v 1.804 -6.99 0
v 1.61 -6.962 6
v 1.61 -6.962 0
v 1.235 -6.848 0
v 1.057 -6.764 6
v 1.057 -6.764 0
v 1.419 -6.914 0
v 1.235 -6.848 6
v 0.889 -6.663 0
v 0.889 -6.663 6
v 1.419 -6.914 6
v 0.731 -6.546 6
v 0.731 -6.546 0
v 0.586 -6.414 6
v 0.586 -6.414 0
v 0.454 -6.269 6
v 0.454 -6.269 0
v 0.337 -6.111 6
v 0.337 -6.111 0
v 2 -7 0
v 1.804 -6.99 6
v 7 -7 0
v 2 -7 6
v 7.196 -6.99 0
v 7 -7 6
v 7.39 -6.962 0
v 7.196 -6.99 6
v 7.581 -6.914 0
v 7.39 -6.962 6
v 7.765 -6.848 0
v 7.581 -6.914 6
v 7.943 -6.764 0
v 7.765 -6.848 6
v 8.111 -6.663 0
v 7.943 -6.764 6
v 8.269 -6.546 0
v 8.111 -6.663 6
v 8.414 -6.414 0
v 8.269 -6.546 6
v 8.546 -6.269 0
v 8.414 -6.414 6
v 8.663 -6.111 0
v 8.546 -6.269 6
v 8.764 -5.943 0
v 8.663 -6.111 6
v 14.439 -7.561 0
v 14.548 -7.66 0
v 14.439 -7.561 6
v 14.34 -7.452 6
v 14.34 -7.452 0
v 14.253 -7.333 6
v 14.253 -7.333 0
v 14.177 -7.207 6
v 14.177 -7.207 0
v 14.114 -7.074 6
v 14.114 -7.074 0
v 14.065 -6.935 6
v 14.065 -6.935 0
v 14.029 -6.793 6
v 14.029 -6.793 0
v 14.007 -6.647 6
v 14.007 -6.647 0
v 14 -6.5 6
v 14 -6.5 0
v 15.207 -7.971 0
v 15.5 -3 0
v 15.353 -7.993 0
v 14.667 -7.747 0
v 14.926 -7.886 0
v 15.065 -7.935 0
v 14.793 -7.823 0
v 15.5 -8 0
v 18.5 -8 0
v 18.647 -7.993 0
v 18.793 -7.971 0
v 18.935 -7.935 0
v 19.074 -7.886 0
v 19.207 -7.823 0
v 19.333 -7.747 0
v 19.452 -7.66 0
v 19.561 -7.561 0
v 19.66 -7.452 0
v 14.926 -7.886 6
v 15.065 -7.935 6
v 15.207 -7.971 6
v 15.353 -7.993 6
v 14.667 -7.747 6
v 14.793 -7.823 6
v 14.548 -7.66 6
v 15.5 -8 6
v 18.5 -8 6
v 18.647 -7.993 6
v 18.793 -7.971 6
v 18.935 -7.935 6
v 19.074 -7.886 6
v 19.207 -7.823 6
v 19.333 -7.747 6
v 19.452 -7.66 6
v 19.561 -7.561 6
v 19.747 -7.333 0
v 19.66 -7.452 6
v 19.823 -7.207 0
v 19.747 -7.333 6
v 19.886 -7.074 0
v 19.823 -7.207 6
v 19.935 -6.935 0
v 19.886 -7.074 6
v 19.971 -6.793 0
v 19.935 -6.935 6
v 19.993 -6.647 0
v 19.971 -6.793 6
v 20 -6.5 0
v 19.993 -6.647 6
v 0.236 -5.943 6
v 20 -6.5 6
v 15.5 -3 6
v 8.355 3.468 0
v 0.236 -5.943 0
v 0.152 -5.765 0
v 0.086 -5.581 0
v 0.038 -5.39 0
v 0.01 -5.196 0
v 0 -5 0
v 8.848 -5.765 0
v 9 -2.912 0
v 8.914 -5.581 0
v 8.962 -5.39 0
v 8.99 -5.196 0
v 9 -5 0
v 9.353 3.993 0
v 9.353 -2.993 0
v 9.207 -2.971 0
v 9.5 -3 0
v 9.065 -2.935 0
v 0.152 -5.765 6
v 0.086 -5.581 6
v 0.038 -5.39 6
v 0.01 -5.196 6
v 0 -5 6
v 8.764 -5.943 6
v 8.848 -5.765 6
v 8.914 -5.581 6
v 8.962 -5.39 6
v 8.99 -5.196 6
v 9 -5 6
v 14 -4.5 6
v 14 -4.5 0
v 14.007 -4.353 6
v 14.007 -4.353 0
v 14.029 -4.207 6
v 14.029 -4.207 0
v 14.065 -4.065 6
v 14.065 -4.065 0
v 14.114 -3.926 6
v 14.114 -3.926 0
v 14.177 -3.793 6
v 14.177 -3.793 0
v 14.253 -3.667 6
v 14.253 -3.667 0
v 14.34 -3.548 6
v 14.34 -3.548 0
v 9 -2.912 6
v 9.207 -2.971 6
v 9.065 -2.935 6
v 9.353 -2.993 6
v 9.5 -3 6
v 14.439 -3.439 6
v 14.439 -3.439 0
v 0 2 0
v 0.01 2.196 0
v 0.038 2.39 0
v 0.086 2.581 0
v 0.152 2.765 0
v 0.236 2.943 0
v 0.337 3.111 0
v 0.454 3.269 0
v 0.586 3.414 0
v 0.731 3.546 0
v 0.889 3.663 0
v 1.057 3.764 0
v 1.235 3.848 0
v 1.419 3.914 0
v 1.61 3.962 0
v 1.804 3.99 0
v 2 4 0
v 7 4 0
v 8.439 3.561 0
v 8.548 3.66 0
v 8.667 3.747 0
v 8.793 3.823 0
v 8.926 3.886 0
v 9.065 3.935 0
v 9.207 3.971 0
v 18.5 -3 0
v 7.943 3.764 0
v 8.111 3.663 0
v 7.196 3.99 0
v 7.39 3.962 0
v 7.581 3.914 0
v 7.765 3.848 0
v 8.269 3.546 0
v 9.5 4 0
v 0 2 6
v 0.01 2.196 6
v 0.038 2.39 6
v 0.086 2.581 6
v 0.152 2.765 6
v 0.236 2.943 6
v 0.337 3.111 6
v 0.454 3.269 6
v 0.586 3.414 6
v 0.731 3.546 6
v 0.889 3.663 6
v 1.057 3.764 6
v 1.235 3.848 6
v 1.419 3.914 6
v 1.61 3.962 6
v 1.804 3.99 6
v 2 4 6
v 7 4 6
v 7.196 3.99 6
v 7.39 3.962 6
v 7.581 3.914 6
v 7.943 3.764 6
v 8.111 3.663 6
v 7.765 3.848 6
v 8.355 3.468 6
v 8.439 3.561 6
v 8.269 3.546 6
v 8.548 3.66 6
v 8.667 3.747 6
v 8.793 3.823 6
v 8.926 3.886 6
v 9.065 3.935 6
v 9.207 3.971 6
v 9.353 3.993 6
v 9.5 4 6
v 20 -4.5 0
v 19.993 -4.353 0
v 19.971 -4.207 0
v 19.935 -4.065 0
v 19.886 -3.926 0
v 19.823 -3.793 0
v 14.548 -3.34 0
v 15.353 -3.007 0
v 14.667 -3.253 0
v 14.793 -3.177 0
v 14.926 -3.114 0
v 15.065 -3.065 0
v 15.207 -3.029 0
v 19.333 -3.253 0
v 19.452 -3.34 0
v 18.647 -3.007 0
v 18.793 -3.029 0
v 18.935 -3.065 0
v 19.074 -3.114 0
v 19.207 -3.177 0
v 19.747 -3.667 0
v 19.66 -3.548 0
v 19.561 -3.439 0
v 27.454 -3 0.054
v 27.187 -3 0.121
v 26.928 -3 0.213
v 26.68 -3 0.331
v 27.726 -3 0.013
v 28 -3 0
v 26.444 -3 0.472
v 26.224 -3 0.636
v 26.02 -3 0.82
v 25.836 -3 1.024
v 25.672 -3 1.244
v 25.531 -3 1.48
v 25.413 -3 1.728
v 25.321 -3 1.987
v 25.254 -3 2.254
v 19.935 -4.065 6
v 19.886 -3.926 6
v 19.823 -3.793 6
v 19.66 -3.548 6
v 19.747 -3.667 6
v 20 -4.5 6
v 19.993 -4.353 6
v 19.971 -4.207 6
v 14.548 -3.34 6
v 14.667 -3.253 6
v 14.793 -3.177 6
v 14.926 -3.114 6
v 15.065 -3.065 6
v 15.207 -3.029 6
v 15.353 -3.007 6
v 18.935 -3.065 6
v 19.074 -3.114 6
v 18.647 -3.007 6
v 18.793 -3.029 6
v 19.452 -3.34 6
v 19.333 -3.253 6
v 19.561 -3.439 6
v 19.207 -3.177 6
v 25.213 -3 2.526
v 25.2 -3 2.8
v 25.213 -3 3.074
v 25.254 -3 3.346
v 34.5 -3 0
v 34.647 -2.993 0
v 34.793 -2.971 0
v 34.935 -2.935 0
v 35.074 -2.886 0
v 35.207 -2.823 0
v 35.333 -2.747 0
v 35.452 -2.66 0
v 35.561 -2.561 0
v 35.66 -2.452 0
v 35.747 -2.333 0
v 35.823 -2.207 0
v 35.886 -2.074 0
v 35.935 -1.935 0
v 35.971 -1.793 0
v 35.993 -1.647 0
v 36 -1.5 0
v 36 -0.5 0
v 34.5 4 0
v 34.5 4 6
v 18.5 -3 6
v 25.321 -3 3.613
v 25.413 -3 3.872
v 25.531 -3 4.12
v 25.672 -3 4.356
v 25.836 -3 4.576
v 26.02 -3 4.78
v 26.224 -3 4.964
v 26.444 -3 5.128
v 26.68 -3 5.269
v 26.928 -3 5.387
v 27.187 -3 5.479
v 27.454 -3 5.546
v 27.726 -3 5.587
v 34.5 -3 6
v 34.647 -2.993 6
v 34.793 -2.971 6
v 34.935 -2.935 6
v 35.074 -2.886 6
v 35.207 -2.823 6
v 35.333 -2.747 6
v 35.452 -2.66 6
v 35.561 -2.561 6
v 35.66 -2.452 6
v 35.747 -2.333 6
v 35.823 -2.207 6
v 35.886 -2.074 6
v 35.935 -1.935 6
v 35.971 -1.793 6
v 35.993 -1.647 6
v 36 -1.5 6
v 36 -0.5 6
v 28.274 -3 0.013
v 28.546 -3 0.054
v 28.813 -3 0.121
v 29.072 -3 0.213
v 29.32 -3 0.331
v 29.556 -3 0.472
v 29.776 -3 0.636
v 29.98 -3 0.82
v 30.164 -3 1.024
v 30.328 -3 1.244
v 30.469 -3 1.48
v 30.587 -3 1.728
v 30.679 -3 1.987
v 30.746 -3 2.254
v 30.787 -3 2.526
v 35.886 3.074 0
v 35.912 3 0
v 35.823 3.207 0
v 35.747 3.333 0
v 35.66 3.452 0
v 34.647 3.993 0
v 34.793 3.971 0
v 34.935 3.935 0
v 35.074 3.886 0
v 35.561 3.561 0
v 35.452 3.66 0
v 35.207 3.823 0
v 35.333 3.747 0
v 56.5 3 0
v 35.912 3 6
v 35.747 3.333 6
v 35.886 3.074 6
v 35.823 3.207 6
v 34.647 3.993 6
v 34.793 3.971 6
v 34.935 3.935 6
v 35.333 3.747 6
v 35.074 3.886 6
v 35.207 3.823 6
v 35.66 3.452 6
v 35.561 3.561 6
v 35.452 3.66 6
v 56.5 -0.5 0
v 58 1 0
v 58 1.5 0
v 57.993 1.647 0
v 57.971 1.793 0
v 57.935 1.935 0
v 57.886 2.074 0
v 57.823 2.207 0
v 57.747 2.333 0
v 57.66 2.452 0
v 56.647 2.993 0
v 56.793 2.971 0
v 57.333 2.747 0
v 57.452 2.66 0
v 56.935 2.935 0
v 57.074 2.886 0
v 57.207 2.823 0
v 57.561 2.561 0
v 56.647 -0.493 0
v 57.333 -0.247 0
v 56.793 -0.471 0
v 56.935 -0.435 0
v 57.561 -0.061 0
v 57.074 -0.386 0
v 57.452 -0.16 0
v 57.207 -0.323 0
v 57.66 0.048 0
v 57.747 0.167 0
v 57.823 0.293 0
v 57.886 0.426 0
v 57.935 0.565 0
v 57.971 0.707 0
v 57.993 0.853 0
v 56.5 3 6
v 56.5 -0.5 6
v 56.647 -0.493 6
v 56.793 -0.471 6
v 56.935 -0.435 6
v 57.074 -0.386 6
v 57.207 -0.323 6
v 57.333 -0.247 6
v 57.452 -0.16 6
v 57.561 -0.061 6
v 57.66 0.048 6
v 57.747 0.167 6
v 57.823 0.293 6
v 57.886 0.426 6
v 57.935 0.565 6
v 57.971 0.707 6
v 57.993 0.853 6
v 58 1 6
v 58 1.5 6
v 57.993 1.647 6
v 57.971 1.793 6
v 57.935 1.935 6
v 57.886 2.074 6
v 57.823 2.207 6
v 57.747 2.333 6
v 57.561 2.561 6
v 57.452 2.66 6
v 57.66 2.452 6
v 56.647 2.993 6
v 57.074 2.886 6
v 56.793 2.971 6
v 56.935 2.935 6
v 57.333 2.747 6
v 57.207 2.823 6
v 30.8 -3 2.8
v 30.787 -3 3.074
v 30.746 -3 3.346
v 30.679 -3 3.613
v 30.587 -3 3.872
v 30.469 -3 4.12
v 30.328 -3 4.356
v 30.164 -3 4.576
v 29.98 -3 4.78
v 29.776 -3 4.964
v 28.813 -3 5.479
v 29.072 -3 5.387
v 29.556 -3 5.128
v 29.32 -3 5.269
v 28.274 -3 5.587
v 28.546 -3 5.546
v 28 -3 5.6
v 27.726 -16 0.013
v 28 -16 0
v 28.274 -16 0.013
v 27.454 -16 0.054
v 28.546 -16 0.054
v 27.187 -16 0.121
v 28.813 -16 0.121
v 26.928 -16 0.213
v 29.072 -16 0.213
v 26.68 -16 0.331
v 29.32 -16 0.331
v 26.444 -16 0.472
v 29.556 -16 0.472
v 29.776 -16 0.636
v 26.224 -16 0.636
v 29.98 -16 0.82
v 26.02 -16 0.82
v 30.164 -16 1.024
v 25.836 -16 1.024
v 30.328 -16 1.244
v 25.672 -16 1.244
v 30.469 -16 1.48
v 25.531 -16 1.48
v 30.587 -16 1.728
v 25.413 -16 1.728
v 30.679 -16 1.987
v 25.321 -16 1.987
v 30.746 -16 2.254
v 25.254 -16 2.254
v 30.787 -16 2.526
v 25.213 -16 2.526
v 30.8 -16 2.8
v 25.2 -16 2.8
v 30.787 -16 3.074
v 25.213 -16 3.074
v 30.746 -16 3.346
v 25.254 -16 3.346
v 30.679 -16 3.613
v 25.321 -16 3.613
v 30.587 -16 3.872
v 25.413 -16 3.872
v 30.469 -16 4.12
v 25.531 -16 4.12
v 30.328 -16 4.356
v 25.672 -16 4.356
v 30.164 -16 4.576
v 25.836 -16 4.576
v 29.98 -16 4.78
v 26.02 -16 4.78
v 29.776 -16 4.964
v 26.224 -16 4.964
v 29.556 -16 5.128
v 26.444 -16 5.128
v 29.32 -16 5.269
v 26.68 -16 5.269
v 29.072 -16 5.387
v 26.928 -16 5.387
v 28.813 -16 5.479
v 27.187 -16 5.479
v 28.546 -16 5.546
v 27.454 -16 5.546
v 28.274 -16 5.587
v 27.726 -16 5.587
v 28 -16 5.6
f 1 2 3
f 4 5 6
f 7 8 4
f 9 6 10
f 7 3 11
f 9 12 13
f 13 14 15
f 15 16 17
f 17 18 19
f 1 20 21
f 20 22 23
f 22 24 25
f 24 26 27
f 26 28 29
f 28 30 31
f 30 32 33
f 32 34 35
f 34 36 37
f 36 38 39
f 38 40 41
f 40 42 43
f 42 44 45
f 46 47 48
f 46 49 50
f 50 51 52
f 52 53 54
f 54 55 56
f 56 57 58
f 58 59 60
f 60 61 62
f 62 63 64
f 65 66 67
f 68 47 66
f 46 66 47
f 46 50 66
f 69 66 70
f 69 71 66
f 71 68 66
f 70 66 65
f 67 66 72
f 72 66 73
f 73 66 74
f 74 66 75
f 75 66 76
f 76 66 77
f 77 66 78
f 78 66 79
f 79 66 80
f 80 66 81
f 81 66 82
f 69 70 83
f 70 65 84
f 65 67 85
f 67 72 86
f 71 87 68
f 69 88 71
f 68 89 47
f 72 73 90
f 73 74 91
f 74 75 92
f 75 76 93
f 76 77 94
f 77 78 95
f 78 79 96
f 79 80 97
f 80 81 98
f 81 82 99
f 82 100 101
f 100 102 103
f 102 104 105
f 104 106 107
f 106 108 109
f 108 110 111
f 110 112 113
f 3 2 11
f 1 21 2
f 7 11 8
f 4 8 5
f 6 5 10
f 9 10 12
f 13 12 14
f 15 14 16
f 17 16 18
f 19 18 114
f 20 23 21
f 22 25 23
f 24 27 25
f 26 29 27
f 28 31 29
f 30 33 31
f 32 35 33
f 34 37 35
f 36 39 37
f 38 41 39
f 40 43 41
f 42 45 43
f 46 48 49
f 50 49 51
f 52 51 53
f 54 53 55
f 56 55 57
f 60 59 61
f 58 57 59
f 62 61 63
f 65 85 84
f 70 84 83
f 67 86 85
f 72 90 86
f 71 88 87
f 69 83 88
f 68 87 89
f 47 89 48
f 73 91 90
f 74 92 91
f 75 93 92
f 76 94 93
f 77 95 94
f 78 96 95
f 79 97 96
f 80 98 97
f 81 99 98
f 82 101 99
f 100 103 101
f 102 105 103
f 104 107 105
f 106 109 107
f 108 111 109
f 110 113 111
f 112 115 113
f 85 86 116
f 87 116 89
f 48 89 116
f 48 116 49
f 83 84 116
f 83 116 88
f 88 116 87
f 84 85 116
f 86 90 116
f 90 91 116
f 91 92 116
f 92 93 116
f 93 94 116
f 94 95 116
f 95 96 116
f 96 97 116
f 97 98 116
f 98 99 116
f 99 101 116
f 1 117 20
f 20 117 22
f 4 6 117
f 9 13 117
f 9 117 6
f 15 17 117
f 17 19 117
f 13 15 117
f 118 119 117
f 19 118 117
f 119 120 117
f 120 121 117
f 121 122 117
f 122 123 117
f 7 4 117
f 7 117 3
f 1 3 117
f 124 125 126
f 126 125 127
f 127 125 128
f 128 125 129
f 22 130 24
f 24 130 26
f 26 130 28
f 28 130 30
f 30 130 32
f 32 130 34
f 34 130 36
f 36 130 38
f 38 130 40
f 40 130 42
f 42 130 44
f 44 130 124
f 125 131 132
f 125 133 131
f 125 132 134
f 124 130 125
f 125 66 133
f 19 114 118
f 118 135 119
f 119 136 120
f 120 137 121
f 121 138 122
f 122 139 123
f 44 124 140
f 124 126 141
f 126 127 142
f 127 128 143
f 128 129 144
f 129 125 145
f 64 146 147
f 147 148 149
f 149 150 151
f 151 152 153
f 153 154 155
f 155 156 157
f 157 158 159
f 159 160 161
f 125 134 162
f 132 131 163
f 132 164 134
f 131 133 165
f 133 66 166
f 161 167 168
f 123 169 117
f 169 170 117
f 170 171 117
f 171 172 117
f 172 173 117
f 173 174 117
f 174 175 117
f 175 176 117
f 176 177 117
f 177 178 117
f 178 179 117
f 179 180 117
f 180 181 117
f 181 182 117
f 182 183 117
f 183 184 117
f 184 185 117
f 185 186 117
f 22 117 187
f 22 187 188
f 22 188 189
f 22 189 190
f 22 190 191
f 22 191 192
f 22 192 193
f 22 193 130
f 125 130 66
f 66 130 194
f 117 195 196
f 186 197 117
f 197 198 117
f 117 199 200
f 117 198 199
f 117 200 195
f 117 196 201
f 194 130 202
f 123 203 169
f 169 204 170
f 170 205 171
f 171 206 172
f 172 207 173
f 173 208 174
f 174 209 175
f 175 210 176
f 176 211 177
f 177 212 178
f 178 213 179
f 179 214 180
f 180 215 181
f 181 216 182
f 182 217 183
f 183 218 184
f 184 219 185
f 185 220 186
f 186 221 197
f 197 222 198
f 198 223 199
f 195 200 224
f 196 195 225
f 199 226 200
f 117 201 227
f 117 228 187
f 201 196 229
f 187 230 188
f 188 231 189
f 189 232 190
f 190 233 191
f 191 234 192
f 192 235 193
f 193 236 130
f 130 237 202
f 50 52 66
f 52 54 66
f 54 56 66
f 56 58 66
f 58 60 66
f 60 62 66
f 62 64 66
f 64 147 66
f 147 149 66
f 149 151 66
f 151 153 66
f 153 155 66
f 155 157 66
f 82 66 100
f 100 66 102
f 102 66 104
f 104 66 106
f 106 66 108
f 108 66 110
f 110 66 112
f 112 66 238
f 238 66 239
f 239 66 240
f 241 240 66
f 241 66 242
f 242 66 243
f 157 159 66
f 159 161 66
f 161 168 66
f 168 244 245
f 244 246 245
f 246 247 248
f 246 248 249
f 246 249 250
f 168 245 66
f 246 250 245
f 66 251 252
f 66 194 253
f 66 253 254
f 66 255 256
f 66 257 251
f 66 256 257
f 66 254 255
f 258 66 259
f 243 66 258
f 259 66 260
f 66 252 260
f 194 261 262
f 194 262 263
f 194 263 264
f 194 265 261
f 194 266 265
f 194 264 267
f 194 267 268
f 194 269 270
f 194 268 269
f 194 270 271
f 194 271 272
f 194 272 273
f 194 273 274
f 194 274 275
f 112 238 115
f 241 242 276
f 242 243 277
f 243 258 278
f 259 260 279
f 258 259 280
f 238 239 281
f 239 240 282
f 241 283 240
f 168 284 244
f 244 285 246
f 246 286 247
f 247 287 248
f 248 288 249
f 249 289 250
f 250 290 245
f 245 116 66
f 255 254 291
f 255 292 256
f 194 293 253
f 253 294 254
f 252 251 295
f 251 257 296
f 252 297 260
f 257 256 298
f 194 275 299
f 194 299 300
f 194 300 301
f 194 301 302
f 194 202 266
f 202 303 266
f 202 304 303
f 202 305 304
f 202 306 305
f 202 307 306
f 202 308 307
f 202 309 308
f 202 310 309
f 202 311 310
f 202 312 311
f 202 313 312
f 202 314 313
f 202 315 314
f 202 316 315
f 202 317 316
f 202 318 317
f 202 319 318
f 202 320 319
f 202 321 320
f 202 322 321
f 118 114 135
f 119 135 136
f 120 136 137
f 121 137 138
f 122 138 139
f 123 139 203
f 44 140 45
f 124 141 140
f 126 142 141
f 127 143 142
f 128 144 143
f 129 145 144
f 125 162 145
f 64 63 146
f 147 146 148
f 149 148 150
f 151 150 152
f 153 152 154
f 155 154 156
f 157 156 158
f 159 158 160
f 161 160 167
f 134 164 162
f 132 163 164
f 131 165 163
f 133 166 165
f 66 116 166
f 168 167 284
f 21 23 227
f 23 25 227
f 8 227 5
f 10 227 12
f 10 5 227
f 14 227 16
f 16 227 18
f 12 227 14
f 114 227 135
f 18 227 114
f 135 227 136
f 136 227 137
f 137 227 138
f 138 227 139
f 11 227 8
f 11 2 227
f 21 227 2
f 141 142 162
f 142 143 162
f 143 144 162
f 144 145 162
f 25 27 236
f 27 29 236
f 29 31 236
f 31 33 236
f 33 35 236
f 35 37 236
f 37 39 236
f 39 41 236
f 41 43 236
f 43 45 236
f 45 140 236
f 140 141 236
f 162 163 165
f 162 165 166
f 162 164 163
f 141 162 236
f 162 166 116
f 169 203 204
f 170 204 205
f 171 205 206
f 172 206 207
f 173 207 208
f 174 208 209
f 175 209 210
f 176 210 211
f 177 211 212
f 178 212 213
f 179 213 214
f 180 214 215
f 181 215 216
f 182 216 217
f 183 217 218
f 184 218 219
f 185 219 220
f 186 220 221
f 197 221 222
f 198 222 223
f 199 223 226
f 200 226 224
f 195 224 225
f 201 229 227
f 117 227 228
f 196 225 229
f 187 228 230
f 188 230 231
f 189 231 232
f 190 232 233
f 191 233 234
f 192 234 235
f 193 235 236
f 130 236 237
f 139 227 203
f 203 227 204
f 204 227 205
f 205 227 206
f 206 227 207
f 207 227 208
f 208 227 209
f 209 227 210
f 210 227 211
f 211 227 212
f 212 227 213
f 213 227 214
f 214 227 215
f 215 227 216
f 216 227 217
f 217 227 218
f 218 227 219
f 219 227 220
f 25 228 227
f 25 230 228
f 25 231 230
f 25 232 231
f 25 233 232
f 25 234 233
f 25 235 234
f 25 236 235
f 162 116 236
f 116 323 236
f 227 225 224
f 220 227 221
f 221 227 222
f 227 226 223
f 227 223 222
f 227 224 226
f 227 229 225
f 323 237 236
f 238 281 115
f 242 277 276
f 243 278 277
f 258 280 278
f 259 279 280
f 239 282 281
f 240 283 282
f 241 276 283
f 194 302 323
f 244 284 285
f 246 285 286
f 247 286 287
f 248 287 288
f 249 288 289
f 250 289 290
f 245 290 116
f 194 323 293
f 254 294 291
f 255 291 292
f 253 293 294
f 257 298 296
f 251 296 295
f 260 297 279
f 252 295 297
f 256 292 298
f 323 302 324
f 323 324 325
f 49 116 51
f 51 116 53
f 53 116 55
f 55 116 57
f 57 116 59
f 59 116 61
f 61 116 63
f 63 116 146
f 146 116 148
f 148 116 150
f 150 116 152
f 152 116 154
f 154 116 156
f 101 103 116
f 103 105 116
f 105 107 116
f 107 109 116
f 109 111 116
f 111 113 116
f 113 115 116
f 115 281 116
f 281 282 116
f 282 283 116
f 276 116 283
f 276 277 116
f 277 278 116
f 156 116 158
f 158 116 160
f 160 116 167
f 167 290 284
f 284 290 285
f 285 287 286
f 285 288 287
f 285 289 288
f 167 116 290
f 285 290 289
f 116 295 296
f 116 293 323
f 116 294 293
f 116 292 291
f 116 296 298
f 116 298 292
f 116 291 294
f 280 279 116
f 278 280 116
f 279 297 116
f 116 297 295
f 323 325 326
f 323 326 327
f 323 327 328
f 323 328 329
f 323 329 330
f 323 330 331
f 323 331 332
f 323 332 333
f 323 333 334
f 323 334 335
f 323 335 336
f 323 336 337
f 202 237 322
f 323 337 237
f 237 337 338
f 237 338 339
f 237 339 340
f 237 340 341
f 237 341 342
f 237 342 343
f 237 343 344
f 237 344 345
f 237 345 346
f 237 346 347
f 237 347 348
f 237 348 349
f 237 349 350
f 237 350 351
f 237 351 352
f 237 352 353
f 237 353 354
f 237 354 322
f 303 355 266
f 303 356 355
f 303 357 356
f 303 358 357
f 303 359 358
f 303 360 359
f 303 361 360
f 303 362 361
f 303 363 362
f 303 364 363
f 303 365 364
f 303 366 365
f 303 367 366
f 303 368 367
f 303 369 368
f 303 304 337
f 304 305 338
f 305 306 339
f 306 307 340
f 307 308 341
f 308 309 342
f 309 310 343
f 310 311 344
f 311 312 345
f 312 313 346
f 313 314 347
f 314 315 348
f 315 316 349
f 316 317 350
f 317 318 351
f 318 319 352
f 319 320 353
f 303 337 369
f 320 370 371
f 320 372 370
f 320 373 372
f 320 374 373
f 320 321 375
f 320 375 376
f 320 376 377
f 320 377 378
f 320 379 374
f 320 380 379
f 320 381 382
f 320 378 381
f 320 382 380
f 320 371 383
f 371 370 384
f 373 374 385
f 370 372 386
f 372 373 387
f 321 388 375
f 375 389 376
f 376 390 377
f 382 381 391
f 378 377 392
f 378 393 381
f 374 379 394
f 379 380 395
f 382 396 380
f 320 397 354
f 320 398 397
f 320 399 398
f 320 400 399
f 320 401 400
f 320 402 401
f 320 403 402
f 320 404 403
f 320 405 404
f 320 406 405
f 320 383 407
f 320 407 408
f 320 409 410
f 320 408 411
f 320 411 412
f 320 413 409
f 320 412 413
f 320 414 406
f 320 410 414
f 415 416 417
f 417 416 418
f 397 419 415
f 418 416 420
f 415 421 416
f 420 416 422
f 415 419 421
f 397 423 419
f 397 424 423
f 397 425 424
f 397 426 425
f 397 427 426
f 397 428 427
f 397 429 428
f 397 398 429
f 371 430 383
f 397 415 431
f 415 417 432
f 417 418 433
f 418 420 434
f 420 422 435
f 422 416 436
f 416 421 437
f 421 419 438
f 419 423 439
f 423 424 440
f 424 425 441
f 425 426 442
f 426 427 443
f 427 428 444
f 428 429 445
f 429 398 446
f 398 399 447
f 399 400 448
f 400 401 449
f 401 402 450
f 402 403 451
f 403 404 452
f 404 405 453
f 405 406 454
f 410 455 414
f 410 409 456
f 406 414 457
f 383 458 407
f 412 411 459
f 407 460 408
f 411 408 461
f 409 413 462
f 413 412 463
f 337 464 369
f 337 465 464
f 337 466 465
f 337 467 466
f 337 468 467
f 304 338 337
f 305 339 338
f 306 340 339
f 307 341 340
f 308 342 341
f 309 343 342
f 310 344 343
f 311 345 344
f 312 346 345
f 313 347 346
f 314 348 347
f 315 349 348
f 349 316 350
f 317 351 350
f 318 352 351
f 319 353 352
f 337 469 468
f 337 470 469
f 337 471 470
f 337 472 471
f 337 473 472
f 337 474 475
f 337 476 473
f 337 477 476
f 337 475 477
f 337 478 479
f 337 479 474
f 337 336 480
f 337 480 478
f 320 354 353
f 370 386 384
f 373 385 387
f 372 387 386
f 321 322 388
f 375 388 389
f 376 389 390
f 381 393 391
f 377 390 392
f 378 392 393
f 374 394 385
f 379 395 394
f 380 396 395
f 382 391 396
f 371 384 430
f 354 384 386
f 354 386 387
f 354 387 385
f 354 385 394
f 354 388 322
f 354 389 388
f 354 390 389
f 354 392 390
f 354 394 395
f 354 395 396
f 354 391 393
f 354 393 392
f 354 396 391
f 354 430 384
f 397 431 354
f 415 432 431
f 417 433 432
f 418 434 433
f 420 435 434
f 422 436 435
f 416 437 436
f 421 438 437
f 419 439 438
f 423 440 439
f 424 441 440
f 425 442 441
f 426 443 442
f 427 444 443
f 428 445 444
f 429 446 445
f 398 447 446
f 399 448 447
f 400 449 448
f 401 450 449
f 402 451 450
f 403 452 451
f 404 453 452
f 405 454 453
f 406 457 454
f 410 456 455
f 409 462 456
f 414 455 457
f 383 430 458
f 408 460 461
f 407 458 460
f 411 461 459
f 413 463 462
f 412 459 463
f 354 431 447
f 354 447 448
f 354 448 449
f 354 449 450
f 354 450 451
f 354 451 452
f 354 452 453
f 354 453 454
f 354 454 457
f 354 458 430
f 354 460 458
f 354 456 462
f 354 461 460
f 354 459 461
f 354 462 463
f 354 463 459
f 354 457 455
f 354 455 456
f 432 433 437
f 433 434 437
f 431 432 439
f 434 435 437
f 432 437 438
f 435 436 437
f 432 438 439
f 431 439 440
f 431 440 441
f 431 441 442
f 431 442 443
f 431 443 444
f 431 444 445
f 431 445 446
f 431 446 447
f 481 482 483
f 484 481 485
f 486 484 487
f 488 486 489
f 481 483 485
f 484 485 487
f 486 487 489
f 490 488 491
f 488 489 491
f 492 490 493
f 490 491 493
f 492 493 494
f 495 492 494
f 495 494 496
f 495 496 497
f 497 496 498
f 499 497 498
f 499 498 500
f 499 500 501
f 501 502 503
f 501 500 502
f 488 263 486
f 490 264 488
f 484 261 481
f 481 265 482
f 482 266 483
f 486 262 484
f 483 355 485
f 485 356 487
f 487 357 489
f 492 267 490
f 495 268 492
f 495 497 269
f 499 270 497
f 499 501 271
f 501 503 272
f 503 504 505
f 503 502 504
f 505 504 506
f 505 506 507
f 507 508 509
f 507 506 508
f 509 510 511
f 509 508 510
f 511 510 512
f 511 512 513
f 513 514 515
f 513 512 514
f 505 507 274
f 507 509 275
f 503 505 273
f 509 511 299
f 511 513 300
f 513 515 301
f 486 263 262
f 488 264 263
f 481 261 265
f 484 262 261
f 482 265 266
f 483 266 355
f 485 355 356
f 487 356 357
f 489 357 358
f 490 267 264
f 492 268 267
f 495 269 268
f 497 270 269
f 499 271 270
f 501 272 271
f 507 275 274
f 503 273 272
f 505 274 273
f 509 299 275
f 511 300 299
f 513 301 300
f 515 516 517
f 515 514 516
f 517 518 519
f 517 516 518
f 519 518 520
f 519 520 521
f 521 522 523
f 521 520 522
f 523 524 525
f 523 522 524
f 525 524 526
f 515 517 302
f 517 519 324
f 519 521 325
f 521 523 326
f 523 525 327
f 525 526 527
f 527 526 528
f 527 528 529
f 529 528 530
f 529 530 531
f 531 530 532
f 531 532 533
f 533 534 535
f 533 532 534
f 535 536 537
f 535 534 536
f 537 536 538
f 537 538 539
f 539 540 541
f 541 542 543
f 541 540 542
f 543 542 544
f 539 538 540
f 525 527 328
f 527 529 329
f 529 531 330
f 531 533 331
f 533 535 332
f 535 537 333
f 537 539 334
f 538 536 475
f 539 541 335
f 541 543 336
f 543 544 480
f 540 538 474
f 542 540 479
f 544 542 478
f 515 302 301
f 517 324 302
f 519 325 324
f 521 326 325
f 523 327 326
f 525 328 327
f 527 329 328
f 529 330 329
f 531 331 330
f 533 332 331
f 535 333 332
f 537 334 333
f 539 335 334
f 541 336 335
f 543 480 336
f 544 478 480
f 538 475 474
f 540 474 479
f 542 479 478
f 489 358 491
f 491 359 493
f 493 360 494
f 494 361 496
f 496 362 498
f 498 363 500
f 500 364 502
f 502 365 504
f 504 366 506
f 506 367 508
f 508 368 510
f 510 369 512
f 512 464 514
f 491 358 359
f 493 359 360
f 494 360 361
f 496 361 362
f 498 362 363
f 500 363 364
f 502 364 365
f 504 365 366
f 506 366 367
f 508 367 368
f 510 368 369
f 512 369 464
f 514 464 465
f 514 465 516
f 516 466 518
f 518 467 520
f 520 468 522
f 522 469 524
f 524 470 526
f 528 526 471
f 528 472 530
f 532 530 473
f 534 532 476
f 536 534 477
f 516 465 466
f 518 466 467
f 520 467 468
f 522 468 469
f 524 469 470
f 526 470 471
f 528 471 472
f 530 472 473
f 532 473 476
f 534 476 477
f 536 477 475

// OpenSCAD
// file: ../lib/soldier.scad
// toy-soldiers shared library
// All figures and weapons include this file. The grip interface constants
// are the contract: any weapon whose bar uses GRIP_BAR_D fits any figure
// whose hand uses GRIP_HOLE_D / GRIP_SLOT_W.

$fn = $preview ? 32 : 64;

// ---------------------------------------------------------------
// Grip interface — shared contract between figures and weapons
// ---------------------------------------------------------------
GRIP_BAR_D  = 5.6;  // weapon grip-bar diameter
GRIP_HOLE_D = 6.0;  // hand hole diameter (0.4mm clearance for FDM)
GRIP_SLOT_W = 5.3;  // C-opening width; bar snaps through the front
HAND_OD     = 11;   // hand outer diameter
HAND_H      = 9;    // hand height
GRIP_BAR_L  = 14;   // standard bar length (sticks out below the hand)

// ---------------------------------------------------------------
// Figure proportions (~70mm tall incl. base, +Y is forward)
// ---------------------------------------------------------------
BASE_D  = 26;  BASE_H  = 4;
LEG_H   = 22;  LEG_D   = 9;  HIP_X = 5.5;   // leg centre offset from middle
TORSO_H = 24;  TORSO_W = 20; TORSO_WAIST = 16; TORSO_D = 12;
HEAD_D  = 14;  NECK_H  = 3;

HIP_Z      = BASE_H + LEG_H;                 // 26
TORSO_Z0   = HIP_Z - 1;                      // torso overlaps hips 1mm
TORSO_Z1   = TORSO_Z0 + TORSO_H;             // 49
SHOULDER_Z = TORSO_Z1 - 3;                   // 46
SHOULDER_X = TORSO_W/2 + 1;                  // arm root
HEAD_CZ    = TORSO_Z1 + NECK_H + HEAD_D/2;   // head centre

// ---------------------------------------------------------------
// Primitives
// ---------------------------------------------------------------
module rounded_box(size, r=2)
    hull()
        for (x=[-1,1], y=[-1,1], z=[-1,1])
            translate([x*(size[0]/2-r), y*(size[1]/2-r), z*(size[2]/2-r)])
                sphere(r=r);

module limb(a, b, ra=4.5, rb=4)   // thick tapered limb between two points
    hull() { translate(a) sphere(r=ra); translate(b) sphere(r=rb); }

// ---------------------------------------------------------------
// Body parts
// ---------------------------------------------------------------
module base()
    cylinder(d1=BASE_D, d2=BASE_D-2, h=BASE_H);

module leg(x)
    union() {
        translate([x, 0, BASE_H-1]) cylinder(d=LEG_D, h=LEG_H+2);
        // boot: rests on the base, so no overhang
        translate([x, 3.5, BASE_H + 2.5]) rounded_box([LEG_D+1, 13, 5], 2);
    }

module torso()
    hull() {
        translate([0, 0, TORSO_Z0 + 2])
            rounded_box([TORSO_WAIST, TORSO_D-1, 4], 2);
        translate([0, 0, TORSO_Z1 - 2.5])
            rounded_box([TORSO_W, TORSO_D, 5], 2);
    }

module head() {
    // stout neck; the sphere's underside meets it at <45deg so no supports
    translate([0, 0, TORSO_Z1 - 1]) cylinder(d=9.5, h=NECK_H + 3);
    translate([0, 0, HEAD_CZ]) sphere(d=HEAD_D);
}

module helmet()
    translate([0, 0, HEAD_CZ + 1]) {
        difference() {
            sphere(d=HEAD_D + 3.5);
            translate([0, 0, -HEAD_D/2]) cube(HEAD_D*2, center=true);
        }
        // brim with 45-degree underside chamfer
        cylinder(d1=HEAD_D + 1, d2=HEAD_D + 5, h=2);
    }

module cap()   // officer's peaked cap
    translate([0, 0, HEAD_CZ + HEAD_D/2 - 3.5]) {
        cylinder(d1=HEAD_D - 0.5, d2=HEAD_D + 1.5, h=4);
        translate([0, 0, 4]) cylinder(d=HEAD_D + 2, h=1.5);
        // peak: wedge jutting over the face, 45deg chamfered underside
        hull() {
            translate([0, HEAD_D/2 - 2, 1.25]) cube([11, 2, 2.5], center=true);
            translate([0, HEAD_D/2 + 3, 2.25]) cube([9, 1, 1.2], center=true);
        }
    }

module backpack()
    translate([0, -TORSO_D/2, SHOULDER_Z - 6])
        hull() {   // sloped underside back to the torso — printable
            translate([0, -1, -4]) rounded_box([13, 2, 4], 1);
            translate([0, -4, 2]) rounded_box([14, 6, 10], 2);
        }

// C-shaped grip hand, hole axis vertical, opening faces +Y (forward)
module grip_hand()
    difference() {
        cylinder(d=HAND_OD, h=HAND_H, center=true);
        cylinder(d=GRIP_HOLE_D, h=HAND_H + 2, center=true);
        translate([0, HAND_OD/4 + 0.5, 0])
            cube([GRIP_SLOT_W, HAND_OD/2 + 2, HAND_H + 2], center=true);
    }

module fist()
    sphere(d=9);

// ---------------------------------------------------------------
// Arms — s = +1 right, -1 left. Poses avoid >45-degree overhangs.
// ---------------------------------------------------------------
module arm(s, pose) {
    sh = [s*SHOULDER_X, 0, SHOULDER_Z];

    if (pose == "grip_side") {          // hand at the hip
        w = [s*(SHOULDER_X + 3), 4, SHOULDER_Z - 14];
        limb(sh, w);
        translate(w + [0, 1, -4]) grip_hand();
    }
    else if (pose == "grip_forward") {  // hand forward at waist height
        w = [s*(SHOULDER_X + 1), 9, SHOULDER_Z - 12];
        limb(sh, w);
        translate(w + [0, 2, -4]) grip_hand();
    }
    else if (pose == "grip_up") {       // bent arm, hand at shoulder height
        e = [s*(SHOULDER_X + 2), 3, SHOULDER_Z - 11];
        w = [s*(SHOULDER_X + 2), 9, SHOULDER_Z - 2];
        limb(sh, e);
        limb(e, w, 4, 4);
        translate(w + [0, 2, 2]) grip_hand();
    }
    else if (pose == "fist_side") {
        w = [s*(SHOULDER_X + 3), 3, SHOULDER_Z - 15];
        limb(sh, w);
        translate(w + [0, 0, -3]) fist();
    }
    else if (pose == "fist_forward") {
        w = [s*(SHOULDER_X + 1), 8, SHOULDER_Z - 13];
        limb(sh, w);
        translate(w + [0, 2, -2]) fist();
    }
    else if (pose == "point_up") {      // raised arm, ~40 degrees off vertical
        w = [s*(SHOULDER_X + 5), 6, SHOULDER_Z + 9];
        limb(sh, w);
        translate(w) sphere(d=8);
        translate(w) rotate([-40, s*15, 0]) cylinder(d=5, h=7);
    }
}

// ---------------------------------------------------------------
// Assembled soldier
// ---------------------------------------------------------------
module soldier(right_arm="grip_side", left_arm="fist_side",
               headgear="helmet", pack=false) {
    base();
    leg(-HIP_X); leg(HIP_X);
    torso();
    head();
    if (headgear == "helmet") helmet();
    if (headgear == "cap") cap();
    if (pack) backpack();
    arm( 1, right_arm);
    arm(-1, left_arm);
}

// ---------------------------------------------------------------
// Weapon helper — weapons are modelled in PRINT orientation:
// lying flat on the bed (z=0), length along X, "up in use" is +Y.
// The bar rests tangent on the bed so nothing floats.
// ---------------------------------------------------------------
module grip_bar(x, y_top, len=GRIP_BAR_L)
    translate([x, y_top, GRIP_BAR_D/2])
        rotate([90, 0, 0]) cylinder(d=GRIP_BAR_D, h=len);
// main file
// Toy rifle — blocky Lego-style silhouette, printed lying flat.
// X = barrel direction, +Y = up in use, grip bar hangs -Y.
include <../lib/soldier.scad>

THK = 6;   // body thickness

// rounded rectangle in the XY profile plane
module rrect(x0, y0, x1, y1, r=1.5)
    translate([(x0+x1)/2, (y0+y1)/2])
        offset(r=r) square([x1-x0-2*r, y1-y0-2*r], center=true);

linear_extrude(THK)
    union() {
        rrect( 0, -7,  9, 4, 2);    // stock
        rrect( 8, -3, 36, 4);       // receiver
        rrect(34, -0.5, 58, 3);     // barrel
        rrect(48,  2, 51, 6);       // front sight
        rrect(14,  3, 24, 7, 2);    // carry handle
        rrect(14, -8, 20, -3);      // magazine
    }

grip_bar(28, -2);   // overlaps 2mm into the receiver
